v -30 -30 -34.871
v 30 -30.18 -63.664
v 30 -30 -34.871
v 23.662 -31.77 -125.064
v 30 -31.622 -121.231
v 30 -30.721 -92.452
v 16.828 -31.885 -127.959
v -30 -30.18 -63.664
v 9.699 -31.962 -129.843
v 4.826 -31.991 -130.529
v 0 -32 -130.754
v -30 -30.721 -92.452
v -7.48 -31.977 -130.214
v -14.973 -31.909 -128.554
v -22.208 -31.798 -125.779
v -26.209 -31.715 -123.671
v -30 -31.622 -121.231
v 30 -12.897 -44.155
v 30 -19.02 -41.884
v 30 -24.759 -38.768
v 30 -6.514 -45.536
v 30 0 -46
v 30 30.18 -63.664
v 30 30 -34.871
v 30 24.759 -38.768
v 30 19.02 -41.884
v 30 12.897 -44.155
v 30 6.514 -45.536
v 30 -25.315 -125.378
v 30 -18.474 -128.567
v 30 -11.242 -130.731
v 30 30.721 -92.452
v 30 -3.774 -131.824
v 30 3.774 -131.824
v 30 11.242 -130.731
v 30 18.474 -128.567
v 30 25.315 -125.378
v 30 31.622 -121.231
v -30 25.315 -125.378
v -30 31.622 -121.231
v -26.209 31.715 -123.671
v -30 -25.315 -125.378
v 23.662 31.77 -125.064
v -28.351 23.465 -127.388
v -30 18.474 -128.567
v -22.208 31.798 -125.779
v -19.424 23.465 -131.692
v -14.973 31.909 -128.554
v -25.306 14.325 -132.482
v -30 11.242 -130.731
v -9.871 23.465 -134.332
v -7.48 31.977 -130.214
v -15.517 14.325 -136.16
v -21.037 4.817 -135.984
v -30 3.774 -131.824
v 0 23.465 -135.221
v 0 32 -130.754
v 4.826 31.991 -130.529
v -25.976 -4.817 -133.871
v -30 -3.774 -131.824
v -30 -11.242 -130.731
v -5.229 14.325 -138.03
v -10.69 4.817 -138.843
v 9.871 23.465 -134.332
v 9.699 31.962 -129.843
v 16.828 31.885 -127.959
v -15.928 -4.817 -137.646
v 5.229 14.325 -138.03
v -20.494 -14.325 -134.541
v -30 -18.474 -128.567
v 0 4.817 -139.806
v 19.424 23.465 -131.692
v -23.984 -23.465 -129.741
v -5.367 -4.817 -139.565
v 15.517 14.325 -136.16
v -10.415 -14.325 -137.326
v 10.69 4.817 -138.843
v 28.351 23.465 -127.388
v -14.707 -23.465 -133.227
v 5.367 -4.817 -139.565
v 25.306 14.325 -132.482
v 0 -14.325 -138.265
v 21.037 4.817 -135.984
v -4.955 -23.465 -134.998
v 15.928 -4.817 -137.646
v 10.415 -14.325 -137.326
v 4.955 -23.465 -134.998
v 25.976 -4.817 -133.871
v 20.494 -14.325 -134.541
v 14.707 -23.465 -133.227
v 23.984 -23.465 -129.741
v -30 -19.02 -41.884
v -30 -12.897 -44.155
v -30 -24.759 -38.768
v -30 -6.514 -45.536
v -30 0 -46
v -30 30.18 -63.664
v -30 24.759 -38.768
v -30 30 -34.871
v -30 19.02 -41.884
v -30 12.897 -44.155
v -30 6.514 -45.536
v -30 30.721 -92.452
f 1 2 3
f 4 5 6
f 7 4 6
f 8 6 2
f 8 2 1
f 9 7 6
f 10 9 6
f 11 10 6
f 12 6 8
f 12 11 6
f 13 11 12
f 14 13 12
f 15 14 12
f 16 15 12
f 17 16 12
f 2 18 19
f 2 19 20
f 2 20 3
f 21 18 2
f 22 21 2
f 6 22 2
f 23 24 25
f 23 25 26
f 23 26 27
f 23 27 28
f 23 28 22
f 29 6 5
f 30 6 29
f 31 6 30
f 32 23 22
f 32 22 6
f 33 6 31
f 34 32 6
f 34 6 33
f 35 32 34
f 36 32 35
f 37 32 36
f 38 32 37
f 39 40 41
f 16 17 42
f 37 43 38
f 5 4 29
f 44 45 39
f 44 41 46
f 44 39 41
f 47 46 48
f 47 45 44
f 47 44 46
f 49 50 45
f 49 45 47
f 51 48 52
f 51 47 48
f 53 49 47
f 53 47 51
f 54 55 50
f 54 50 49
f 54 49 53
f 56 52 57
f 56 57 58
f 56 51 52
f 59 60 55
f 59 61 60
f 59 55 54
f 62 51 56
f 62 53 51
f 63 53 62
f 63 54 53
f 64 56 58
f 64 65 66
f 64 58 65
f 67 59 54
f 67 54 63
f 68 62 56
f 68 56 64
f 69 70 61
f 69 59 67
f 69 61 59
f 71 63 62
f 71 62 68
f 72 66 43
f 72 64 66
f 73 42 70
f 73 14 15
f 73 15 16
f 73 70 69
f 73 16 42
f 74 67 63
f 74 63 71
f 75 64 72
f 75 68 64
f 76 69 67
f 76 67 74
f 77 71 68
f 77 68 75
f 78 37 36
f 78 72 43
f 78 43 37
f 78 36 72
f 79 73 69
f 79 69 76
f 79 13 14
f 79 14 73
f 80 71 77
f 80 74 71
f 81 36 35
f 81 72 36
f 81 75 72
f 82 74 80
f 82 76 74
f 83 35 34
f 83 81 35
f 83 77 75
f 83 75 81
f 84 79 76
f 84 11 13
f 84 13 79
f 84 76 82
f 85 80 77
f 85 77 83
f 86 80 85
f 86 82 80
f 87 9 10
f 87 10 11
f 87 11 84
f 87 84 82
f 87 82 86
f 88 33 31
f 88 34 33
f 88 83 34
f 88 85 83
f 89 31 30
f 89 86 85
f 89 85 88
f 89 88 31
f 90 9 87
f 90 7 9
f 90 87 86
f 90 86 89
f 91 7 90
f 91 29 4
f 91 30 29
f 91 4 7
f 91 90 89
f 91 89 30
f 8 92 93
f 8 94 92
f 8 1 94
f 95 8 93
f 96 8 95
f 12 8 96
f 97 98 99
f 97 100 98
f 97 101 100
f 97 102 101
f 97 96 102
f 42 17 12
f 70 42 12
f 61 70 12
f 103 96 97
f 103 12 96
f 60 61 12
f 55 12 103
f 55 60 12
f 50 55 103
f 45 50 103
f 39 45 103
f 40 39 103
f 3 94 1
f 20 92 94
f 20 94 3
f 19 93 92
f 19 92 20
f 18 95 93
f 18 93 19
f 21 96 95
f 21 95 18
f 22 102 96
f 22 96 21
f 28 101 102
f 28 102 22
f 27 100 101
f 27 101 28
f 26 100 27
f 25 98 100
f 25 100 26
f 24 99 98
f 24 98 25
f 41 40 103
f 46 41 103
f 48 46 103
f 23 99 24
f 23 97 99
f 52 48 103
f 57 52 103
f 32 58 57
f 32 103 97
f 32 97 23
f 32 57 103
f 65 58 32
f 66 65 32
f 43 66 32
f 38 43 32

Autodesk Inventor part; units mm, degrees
ref_plane "Work Plane2" through (0, -32.5, -80) normal (0, 0, -1) x (0, 1, 0)
ref_plane "Work Plane1" through (0, 0, 27.5) normal (0, 0, 1) x (1, 0, 0)
ref_plane "Work Plane3" through (0, 0, -200) normal (0, 0, -1) x (-1, 0, 0)
sketch "Sketch11" plane through (0, 0, 0) normal (1, 0, 0) x (0, 1, 0)
  line L0 (-521.0786, 0) -> (2804.4717, 0) construction
  line L1 (0, -249.2) -> (0, 95.2) projected
  circle A0 centre (0, 0) radius 32.5
  circle A1 centre (0, 0) radius 46
  line L2 (-30, -34.8712) -> (-30, -131.9615)
  line L3 (-30, -131.9615) -> (30, -131.9615)
  line L4 (30, -131.9615) -> (30, -34.8712)
  arc A2 (-30, -131.9615) -> (30, -131.9615) centre (0, -80) ccw
  arc A3 (30, -131.9615) -> (50, -113.1662) centre (0, -80) ccw
  line L5 (0, -160) -> (50, -160)
  line L6 (50, -160) -> (50, -113.1662)
  arc A4 (30, -34.8712) -> (32, -130.7543) centre (2329.3931, -34.8712) ccw
  point P0 (-30, -131.9615)
  point P1 (0, -140)
  point P2 (0, -131.9615)
  point P3 (0, -185.7103)
  point P4 (0, -140)
  point P5 (0, -46)
  dimension "d77" = 65
  dimension "d78" = 92
  dimension "d79" = 60
  dimension "d85" = 20
  dimension "d86" = 20
  dimension "d87" = 60
  dimension "d89" = 32
  dimension "d90" = 140
extrude "Extrusion11" add sketch "Sketch11" along normal mid plane 60 contours L1 A1 L4 L3 | L4 A4 A3
revolve "Revolution1" add sketch "Sketch11" angle 180 mid plane about axis through (0, 0, -10) along (0, 0, 1) picked at (16.8404, -133.4348) contours L1 L3 A2
revolve "Revolution2" cut sketch "Sketch11" angle 360 about axis through (0, 0, -10) along (0, 0, 1) contours L1 A2 A3 L6 L5
mirror "Mirror1" about plane through (0, 0, 0) normal (0, 1, 0)
sketch "Sketch6" plane through (0, 0, 0) normal (1, 0, 0) x (0, 1, 0)
  circle A0 centre (0, 0) radius 32.5
  line L0 (-32.5, 0) -> (-32.5, -80)
  line L1 (-32.5, -80) -> (32.5, -80)
  line L2 (32.5, -80) -> (32.5, 0)
  line L3 (0, 0) -> (0, -80) construction
  line L4 (-32.5, -60) -> (32.5, -60)
  circle A1 centre (0, 0) radius 48.5
  point P0 (32.5, -36)
  point P1 (23.3184, -32.5)
  point P2 (0, -40)
  point P3 (-32.5, -36)
  dimension "d38" = 65
  dimension "d39" = 80
  dimension "d74" = 97
  dimension "d75" = 20
  dimension "d48" = 10
  dimension "d73" = 55
  dimension "d52" = 120
sketch "Sketch5" plane through (0, 0, -171) normal (0, 0, -1) x (-1, 0, 0)
  circle A0 centre (0, 0) radius 10
  point P0 (0, 0)
  dimension "d35" = 20
properties part number "shank_2"
